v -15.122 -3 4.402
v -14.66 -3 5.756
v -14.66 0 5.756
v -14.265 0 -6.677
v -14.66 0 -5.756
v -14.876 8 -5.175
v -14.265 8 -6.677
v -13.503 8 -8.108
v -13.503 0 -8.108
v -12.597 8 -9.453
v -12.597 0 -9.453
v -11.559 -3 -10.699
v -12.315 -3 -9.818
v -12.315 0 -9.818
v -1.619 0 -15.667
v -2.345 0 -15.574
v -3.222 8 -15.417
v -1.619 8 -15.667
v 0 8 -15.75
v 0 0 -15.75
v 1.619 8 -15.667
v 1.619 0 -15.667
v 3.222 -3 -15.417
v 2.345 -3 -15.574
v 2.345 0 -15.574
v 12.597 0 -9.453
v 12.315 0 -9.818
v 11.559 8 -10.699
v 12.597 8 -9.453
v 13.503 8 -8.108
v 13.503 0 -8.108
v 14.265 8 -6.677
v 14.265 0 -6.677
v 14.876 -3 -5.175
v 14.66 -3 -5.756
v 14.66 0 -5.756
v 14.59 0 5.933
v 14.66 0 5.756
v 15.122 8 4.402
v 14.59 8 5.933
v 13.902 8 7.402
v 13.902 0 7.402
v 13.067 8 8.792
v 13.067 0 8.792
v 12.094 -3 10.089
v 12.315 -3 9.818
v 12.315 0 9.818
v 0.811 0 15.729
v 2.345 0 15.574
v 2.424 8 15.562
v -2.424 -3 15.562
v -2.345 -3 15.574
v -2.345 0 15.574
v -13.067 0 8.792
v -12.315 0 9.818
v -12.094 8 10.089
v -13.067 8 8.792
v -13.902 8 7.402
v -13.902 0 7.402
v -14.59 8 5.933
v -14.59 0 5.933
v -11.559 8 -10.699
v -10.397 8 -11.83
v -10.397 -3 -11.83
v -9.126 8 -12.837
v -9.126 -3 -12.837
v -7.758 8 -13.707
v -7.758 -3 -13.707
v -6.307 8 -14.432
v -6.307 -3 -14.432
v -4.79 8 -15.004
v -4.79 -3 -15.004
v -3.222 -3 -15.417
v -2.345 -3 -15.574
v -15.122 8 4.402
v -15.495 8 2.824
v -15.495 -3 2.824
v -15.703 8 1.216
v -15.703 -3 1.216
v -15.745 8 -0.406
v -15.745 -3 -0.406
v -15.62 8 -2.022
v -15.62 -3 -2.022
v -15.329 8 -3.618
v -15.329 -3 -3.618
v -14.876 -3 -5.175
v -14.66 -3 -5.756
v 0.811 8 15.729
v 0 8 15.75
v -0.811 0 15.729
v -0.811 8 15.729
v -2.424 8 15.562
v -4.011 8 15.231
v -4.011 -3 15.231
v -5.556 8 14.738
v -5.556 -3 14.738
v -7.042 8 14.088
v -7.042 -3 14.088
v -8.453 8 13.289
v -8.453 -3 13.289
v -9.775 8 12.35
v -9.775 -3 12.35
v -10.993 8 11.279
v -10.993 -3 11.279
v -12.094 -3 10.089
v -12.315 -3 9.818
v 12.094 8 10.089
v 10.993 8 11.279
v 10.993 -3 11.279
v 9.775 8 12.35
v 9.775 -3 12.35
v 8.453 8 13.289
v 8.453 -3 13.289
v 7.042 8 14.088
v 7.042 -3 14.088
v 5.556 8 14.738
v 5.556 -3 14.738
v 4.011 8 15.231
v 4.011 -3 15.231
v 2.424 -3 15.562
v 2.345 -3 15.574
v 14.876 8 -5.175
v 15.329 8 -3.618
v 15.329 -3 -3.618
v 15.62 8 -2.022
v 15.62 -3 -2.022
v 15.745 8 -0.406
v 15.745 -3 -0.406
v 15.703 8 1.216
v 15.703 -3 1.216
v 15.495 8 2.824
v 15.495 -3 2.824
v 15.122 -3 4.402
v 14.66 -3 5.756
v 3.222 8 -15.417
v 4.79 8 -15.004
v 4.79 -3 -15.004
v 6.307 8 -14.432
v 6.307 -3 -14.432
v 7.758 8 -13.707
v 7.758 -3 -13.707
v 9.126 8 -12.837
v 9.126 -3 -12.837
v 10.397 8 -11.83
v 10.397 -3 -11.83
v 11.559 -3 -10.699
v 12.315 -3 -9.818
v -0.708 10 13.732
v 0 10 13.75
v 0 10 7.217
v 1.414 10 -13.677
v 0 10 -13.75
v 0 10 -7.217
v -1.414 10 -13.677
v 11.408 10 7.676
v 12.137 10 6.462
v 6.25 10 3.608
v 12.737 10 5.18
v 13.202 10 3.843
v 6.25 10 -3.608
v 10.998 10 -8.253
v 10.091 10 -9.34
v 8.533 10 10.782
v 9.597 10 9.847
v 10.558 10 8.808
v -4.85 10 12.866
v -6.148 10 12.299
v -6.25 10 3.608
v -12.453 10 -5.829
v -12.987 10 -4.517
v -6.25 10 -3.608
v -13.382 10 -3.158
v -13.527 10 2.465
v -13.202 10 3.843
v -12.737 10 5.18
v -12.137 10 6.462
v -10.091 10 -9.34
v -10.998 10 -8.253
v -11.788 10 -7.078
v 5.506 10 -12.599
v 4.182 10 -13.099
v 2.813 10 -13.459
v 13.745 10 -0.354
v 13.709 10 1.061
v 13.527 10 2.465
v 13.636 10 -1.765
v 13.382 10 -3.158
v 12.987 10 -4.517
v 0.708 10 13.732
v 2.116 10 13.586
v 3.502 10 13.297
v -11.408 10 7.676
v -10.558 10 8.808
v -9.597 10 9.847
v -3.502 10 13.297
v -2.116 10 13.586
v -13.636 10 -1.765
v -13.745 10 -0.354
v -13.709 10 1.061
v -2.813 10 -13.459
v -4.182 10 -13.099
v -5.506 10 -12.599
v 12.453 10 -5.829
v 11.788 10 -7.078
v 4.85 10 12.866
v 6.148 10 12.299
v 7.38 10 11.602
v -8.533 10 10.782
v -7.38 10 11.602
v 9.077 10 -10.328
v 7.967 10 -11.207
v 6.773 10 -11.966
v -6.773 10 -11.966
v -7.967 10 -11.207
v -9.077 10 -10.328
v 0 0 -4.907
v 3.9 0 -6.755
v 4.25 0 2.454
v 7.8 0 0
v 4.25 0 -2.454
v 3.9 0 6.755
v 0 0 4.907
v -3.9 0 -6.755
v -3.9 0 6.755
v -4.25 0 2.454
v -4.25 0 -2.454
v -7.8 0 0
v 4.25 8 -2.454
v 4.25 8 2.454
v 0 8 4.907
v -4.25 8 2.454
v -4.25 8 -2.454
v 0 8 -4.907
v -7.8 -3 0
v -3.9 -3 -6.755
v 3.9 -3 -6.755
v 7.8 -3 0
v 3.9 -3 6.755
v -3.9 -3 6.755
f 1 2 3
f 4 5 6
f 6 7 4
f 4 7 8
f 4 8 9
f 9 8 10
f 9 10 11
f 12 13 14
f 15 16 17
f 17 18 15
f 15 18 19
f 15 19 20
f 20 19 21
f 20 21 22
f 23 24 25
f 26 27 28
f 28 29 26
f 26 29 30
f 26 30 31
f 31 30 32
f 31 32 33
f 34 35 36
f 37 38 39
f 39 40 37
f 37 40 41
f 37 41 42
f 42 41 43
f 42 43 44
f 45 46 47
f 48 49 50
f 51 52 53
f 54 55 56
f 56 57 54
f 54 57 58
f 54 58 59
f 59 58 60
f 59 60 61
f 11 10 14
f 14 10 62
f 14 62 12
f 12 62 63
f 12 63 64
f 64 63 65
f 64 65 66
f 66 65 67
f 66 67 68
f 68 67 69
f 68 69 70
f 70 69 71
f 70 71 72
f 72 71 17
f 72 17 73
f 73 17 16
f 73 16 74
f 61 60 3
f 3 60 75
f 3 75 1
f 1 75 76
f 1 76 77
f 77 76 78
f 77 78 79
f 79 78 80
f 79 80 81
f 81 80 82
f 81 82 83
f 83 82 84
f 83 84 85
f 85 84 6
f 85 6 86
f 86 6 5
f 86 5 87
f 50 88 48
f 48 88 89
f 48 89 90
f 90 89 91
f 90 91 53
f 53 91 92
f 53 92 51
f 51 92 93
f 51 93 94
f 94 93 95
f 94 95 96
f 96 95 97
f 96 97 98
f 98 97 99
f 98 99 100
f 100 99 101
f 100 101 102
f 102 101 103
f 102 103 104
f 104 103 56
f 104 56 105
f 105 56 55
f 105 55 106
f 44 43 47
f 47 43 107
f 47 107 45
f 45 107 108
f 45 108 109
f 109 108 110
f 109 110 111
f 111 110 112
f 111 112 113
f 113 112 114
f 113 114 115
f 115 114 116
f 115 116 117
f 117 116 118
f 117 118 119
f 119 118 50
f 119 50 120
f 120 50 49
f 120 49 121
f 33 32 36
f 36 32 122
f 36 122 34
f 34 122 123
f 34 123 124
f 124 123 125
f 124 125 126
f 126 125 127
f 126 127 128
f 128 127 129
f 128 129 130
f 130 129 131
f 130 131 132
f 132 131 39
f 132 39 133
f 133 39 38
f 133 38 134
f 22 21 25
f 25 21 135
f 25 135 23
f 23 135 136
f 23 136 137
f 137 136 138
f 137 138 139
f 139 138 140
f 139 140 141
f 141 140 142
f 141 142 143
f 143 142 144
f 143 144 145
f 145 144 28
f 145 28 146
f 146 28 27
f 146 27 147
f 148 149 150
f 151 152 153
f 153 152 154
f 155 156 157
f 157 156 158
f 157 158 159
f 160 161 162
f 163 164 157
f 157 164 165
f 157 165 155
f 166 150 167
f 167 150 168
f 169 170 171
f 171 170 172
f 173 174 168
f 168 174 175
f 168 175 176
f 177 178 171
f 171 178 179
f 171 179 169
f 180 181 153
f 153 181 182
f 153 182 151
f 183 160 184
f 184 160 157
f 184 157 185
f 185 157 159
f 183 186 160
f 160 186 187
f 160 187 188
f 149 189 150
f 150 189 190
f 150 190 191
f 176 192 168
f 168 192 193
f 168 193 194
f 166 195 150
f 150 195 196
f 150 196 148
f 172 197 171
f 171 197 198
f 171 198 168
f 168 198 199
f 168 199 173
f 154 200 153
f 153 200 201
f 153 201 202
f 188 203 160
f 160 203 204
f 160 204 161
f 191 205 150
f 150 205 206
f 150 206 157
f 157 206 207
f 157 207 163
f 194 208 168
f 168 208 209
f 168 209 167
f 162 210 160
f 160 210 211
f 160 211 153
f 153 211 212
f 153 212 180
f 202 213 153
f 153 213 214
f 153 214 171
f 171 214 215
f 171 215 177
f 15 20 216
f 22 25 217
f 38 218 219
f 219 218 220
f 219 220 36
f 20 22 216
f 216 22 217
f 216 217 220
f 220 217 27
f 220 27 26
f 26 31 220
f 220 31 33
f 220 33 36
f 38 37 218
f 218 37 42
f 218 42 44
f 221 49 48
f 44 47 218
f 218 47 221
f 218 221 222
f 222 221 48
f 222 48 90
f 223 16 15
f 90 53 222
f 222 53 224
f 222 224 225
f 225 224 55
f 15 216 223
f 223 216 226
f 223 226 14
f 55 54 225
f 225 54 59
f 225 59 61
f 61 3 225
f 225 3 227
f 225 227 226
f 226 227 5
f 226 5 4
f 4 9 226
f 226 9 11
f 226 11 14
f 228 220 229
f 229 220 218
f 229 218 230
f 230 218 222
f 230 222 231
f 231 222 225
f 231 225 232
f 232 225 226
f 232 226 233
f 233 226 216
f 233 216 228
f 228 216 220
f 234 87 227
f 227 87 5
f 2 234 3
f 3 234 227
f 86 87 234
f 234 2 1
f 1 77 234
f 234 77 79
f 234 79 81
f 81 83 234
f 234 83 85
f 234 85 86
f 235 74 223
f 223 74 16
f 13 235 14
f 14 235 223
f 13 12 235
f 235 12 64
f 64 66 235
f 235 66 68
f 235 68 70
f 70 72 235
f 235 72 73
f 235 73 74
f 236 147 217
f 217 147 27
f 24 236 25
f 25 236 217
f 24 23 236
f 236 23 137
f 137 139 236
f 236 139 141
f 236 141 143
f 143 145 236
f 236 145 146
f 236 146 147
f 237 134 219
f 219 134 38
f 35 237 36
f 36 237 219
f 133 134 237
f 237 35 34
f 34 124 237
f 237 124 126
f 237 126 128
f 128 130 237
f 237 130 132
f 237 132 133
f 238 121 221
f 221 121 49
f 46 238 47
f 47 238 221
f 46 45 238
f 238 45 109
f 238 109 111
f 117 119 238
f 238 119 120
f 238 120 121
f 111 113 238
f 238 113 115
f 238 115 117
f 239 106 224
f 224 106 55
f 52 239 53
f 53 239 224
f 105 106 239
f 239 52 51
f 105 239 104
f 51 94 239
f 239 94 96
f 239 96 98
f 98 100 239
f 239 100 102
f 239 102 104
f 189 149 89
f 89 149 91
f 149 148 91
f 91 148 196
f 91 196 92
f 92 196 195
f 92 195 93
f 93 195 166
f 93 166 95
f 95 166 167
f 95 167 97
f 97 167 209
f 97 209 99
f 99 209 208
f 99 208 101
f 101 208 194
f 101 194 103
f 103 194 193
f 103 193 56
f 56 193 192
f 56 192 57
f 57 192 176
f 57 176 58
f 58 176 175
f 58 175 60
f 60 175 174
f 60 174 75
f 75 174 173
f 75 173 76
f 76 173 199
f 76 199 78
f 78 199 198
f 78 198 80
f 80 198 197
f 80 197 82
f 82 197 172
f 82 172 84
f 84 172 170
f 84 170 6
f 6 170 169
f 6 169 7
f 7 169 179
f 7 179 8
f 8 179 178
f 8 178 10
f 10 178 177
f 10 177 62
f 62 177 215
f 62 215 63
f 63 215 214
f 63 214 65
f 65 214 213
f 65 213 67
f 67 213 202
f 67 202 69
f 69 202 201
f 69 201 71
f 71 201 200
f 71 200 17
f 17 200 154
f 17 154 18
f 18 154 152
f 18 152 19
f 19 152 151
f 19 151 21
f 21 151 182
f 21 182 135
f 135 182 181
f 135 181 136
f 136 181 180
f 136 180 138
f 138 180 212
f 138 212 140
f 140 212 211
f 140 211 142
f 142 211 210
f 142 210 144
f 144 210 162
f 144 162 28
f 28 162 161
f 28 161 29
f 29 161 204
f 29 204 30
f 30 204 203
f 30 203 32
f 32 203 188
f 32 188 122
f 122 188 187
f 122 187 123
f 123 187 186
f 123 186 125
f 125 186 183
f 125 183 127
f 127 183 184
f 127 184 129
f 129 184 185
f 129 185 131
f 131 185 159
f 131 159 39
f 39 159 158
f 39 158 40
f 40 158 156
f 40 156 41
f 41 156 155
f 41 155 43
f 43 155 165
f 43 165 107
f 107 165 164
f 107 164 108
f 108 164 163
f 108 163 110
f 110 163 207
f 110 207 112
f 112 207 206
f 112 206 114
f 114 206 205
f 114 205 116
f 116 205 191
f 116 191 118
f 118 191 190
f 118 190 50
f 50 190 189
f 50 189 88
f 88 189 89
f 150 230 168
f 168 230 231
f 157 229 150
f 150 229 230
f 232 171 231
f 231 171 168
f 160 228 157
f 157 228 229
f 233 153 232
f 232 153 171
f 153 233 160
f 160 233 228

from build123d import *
from build123d.topology import SkipClean

# Parameters (mm, degrees)
SKETCH1_R           = 15.75
BOSS_EXTRUDE1_DEPTH = 10
CUT_EXTRUDE1_DEPTH  = 10
BOSS_EXTRUDE2_START = 3
BOSS_EXTRUDE2_DEPTH = 3
CHAMFER1_SIZE       = 2


with BuildPart() as part:
    # Sketch1 → Boss-Extrude1 (new body)
    with BuildSketch(Plane(origin=(0, 0, 0), x_dir=(1, 0, 0), z_dir=(0, 1, 0))):
        with Locations(Location((0, 0, 0), (0, 0, 270))):
            Circle(SKETCH1_R)
    extrude(amount=BOSS_EXTRUDE1_DEPTH)

    # Sketch2 → Cut-Extrude1 (cut)
    with BuildSketch(Plane(origin=(0, 10, 0), x_dir=(1, 0, 0), z_dir=(0, 1, 0))):
        Polygon((4.25, 2.453738644), (0, 4.907477288), (-4.25, 2.453738644), (-4.25, -2.453738644), (0, -4.907477288), (4.25, -2.453738644), align=None)
    extrude(amount=-CUT_EXTRUDE1_DEPTH, mode=Mode.SUBTRACT)

    # Sketch3 → Boss-Extrude2 (add)
    with SkipClean():  # the faces are left unmerged after this step: merging them gives an invalid solid
        with BuildSketch(Plane.XZ.offset(BOSS_EXTRUDE2_START)):
            with BuildLine():
                Line((-14.660328147, -5.756498818), (-7.8, 0))
                Line((-7.8, 0), (-14.660328147, 5.756498818))
                ThreePointArc((-14.660328147, 5.756498818), (-15.75, 0), (-14.660328147, -5.756498818))
            make_face()
            with BuildLine():
                Line((-3.9, -6.75499815), (-12.315438286, -9.817967194))
                ThreePointArc((-12.315438286, -9.817967194), (-7.875, -13.63990011), (-2.34488986, -15.574466011))
                Line((-2.34488986, -15.574466011), (-3.9, -6.75499815))
            make_face()
            with BuildLine():
                Line((3.9, -6.75499815), (2.34488986, -15.574466011))
                ThreePointArc((2.34488986, -15.574466011), (7.875, -13.63990011), (12.315438286, -9.817967194))
                Line((12.315438286, -9.817967194), (3.9, -6.75499815))
            make_face()
            with BuildLine():
                Line((7.8, 0), (14.660328147, -5.756498818))
                ThreePointArc((14.660328147, -5.756498818), (15.475184463, -2.929362703), (15.75, 0))
                ThreePointArc((15.75, 0), (15.475184463, 2.929362703), (14.660328147, 5.756498818))
                Line((14.660328147, 5.756498818), (7.8, 0))
            make_face()
            with BuildLine():
                ThreePointArc((12.315438286, 9.817967194), (7.875, 13.63990011), (2.34488986, 15.574466011))
                Line((2.34488986, 15.574466011), (3.9, 6.75499815))
                Line((3.9, 6.75499815), (12.315438286, 9.817967194))
            make_face()
            with BuildLine():
                ThreePointArc((-2.34488986, 15.574466011), (-7.875, 13.63990011), (-12.315438286, 9.817967194))
                Line((-12.315438286, 9.817967194), (-3.9, 6.75499815))
                Line((-3.9, 6.75499815), (-2.34488986, 15.574466011))
            make_face()
        extrude(amount=-BOSS_EXTRUDE2_DEPTH)

    # Chamfer1
    chamfer1_edges = [part.edges().sort_by_distance(p)[0] for p in [
        (4.25, 10, 0),
        (2.125, 10, -3.680607966),
        (-2.125, 10, -3.680607966),
        (-4.25, 10, 0),
        (-2.125, 10, 3.680607966),
        (2.125, 10, 3.680607966),
        (0, 10, -15.75),
    ]]
    chamfer(chamfer1_edges, length=CHAMFER1_SIZE)


solid = part.part
